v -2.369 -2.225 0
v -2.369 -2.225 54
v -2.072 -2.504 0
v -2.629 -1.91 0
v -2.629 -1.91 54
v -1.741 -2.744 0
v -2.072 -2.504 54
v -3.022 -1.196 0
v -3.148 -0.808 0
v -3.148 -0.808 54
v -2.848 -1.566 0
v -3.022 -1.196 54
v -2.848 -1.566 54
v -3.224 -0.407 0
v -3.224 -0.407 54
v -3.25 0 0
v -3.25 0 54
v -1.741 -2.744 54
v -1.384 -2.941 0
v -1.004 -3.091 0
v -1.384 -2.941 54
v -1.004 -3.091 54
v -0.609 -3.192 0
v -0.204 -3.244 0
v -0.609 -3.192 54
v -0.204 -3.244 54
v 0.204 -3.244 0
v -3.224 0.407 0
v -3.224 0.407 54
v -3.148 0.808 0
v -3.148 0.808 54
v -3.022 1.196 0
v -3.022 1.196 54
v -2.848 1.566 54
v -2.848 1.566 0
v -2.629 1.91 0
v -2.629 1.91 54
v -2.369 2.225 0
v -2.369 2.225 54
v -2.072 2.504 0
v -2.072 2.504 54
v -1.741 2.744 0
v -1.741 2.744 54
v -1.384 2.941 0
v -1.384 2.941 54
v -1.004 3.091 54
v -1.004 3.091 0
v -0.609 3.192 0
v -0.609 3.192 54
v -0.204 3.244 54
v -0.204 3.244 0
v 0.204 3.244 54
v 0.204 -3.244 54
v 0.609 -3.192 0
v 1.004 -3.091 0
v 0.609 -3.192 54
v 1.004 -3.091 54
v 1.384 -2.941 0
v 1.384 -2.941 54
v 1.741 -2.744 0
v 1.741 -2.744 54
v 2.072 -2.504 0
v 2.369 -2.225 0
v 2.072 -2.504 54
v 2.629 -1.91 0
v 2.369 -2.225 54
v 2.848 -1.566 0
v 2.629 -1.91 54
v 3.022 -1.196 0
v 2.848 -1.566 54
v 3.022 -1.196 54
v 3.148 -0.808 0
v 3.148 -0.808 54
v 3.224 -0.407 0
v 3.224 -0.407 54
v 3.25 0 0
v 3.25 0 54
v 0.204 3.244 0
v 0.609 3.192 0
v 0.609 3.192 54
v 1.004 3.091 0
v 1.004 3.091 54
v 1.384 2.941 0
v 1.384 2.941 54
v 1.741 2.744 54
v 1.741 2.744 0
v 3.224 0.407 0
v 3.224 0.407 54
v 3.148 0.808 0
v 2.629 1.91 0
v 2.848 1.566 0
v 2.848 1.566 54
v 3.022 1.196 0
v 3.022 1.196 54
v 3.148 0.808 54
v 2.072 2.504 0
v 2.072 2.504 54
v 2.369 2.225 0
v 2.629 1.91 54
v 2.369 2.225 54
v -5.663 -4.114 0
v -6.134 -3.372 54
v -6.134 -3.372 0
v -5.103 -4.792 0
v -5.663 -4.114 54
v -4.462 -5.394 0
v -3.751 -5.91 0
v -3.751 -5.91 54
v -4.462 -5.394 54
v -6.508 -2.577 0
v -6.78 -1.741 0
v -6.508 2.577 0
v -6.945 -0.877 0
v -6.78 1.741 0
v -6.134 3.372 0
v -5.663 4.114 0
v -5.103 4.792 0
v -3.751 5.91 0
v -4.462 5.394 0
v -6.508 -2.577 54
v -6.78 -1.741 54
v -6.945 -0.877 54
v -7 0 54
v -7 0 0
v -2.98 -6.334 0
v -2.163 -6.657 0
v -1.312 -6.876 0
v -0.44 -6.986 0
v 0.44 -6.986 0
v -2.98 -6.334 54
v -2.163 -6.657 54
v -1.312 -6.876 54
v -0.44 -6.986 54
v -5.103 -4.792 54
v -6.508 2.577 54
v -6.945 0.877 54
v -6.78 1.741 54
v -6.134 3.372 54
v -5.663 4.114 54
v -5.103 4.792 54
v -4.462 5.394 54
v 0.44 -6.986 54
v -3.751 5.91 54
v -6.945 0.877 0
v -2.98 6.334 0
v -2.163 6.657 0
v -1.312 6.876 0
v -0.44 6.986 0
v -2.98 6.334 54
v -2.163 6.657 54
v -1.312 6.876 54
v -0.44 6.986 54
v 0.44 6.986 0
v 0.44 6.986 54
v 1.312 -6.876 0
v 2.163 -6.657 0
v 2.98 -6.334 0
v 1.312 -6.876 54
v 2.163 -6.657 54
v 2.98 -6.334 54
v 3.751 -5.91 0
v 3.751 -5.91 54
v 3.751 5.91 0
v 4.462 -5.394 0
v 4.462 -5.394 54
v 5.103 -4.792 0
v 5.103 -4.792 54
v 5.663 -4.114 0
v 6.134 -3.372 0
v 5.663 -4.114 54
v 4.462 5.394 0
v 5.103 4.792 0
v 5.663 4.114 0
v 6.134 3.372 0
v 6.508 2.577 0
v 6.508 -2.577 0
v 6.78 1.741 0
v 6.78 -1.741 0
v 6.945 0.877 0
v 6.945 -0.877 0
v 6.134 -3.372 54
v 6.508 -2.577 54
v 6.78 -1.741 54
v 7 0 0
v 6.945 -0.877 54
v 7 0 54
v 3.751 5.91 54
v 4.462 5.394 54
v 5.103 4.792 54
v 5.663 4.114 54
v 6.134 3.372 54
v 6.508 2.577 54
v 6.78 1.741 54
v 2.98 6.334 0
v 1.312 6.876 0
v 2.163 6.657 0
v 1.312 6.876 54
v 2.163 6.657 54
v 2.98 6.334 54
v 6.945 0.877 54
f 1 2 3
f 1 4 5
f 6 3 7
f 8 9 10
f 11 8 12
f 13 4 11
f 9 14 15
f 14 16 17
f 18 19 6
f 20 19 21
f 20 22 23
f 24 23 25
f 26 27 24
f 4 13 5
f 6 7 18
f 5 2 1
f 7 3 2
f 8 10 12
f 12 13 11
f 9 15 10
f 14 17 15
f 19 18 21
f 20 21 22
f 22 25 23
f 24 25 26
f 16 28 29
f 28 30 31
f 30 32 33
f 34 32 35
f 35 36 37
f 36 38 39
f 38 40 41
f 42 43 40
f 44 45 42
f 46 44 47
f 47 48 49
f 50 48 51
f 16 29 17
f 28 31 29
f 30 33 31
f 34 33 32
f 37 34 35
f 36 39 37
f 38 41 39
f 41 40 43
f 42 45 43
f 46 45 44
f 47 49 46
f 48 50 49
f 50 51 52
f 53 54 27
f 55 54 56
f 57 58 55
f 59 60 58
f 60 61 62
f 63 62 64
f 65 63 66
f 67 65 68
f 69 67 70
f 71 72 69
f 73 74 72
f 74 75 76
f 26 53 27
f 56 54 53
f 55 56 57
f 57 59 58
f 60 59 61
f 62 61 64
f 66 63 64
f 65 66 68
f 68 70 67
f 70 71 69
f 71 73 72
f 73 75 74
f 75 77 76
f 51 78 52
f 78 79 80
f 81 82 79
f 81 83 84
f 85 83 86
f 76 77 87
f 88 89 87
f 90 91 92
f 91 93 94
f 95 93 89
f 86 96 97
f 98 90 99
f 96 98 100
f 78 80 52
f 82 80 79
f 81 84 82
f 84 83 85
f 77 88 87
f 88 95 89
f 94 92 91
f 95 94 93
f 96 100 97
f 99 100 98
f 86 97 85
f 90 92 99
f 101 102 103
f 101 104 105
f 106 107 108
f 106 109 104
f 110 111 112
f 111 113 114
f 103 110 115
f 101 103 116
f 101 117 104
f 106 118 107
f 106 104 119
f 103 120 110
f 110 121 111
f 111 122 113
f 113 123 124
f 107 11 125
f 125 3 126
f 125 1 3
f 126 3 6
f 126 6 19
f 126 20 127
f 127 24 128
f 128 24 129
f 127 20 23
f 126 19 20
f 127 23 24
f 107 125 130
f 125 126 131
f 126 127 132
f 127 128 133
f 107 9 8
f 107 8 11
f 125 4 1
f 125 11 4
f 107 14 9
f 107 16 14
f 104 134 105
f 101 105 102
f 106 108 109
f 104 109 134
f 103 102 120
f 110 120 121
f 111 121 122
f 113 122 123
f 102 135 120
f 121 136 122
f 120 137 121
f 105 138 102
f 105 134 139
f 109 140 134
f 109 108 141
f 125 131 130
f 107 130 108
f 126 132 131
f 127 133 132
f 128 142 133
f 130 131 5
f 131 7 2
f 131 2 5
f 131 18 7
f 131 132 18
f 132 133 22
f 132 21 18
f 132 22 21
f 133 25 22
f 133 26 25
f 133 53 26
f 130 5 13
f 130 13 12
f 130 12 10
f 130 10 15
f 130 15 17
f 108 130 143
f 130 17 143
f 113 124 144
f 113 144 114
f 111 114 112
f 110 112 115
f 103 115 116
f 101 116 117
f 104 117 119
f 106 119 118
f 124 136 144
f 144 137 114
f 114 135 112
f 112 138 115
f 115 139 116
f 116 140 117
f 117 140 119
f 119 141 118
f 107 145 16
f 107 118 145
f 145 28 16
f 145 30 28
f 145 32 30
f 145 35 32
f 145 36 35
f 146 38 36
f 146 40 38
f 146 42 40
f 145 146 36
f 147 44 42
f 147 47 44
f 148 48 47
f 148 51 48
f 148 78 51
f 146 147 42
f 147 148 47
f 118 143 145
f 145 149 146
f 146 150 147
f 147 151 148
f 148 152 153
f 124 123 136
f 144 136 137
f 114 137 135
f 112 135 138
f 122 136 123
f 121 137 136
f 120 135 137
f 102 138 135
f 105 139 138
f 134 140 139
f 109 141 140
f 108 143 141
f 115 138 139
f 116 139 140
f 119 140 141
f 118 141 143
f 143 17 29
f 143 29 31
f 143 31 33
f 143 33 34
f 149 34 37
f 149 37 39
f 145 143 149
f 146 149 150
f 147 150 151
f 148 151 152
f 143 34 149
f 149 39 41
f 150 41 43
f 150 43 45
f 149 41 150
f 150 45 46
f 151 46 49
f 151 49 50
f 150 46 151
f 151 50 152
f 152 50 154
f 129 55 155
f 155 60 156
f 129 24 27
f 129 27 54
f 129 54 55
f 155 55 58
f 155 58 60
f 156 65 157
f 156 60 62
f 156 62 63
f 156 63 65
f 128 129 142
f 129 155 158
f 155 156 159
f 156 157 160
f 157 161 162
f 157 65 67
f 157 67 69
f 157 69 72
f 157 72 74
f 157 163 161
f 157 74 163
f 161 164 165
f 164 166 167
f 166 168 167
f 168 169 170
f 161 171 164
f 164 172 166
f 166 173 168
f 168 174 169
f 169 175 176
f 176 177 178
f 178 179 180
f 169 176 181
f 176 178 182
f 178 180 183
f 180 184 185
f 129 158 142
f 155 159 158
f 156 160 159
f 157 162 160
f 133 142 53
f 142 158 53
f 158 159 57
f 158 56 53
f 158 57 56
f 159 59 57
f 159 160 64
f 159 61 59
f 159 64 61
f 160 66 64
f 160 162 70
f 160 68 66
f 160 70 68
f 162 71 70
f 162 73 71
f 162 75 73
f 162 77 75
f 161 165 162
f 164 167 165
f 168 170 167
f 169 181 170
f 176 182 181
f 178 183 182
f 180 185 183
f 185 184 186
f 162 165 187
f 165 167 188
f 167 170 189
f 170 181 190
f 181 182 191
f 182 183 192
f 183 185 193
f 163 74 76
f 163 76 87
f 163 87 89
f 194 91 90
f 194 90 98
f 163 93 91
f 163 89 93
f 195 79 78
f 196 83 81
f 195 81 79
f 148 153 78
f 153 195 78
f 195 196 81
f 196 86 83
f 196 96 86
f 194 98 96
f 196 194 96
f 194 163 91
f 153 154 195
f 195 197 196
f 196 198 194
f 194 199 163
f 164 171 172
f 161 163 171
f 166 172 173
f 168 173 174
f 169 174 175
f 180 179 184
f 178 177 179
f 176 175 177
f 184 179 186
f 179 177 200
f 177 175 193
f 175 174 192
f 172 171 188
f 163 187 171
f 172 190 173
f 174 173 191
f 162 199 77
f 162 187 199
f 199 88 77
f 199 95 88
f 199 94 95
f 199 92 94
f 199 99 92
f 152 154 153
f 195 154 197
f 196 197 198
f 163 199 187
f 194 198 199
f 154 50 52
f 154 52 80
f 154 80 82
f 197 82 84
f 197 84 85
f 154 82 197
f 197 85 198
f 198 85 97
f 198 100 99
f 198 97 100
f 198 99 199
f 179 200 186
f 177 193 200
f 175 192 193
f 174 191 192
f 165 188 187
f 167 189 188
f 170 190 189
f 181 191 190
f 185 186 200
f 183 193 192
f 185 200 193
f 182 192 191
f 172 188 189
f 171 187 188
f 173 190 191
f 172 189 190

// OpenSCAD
$fn = 50;

difference() {
	union() {
		cylinder(h = 54, r = 7.0);
	}
	union() {
		cylinder(h = 54, r = 3.25);
		cylinder(h = 54, r = 1.8);
	}
}
